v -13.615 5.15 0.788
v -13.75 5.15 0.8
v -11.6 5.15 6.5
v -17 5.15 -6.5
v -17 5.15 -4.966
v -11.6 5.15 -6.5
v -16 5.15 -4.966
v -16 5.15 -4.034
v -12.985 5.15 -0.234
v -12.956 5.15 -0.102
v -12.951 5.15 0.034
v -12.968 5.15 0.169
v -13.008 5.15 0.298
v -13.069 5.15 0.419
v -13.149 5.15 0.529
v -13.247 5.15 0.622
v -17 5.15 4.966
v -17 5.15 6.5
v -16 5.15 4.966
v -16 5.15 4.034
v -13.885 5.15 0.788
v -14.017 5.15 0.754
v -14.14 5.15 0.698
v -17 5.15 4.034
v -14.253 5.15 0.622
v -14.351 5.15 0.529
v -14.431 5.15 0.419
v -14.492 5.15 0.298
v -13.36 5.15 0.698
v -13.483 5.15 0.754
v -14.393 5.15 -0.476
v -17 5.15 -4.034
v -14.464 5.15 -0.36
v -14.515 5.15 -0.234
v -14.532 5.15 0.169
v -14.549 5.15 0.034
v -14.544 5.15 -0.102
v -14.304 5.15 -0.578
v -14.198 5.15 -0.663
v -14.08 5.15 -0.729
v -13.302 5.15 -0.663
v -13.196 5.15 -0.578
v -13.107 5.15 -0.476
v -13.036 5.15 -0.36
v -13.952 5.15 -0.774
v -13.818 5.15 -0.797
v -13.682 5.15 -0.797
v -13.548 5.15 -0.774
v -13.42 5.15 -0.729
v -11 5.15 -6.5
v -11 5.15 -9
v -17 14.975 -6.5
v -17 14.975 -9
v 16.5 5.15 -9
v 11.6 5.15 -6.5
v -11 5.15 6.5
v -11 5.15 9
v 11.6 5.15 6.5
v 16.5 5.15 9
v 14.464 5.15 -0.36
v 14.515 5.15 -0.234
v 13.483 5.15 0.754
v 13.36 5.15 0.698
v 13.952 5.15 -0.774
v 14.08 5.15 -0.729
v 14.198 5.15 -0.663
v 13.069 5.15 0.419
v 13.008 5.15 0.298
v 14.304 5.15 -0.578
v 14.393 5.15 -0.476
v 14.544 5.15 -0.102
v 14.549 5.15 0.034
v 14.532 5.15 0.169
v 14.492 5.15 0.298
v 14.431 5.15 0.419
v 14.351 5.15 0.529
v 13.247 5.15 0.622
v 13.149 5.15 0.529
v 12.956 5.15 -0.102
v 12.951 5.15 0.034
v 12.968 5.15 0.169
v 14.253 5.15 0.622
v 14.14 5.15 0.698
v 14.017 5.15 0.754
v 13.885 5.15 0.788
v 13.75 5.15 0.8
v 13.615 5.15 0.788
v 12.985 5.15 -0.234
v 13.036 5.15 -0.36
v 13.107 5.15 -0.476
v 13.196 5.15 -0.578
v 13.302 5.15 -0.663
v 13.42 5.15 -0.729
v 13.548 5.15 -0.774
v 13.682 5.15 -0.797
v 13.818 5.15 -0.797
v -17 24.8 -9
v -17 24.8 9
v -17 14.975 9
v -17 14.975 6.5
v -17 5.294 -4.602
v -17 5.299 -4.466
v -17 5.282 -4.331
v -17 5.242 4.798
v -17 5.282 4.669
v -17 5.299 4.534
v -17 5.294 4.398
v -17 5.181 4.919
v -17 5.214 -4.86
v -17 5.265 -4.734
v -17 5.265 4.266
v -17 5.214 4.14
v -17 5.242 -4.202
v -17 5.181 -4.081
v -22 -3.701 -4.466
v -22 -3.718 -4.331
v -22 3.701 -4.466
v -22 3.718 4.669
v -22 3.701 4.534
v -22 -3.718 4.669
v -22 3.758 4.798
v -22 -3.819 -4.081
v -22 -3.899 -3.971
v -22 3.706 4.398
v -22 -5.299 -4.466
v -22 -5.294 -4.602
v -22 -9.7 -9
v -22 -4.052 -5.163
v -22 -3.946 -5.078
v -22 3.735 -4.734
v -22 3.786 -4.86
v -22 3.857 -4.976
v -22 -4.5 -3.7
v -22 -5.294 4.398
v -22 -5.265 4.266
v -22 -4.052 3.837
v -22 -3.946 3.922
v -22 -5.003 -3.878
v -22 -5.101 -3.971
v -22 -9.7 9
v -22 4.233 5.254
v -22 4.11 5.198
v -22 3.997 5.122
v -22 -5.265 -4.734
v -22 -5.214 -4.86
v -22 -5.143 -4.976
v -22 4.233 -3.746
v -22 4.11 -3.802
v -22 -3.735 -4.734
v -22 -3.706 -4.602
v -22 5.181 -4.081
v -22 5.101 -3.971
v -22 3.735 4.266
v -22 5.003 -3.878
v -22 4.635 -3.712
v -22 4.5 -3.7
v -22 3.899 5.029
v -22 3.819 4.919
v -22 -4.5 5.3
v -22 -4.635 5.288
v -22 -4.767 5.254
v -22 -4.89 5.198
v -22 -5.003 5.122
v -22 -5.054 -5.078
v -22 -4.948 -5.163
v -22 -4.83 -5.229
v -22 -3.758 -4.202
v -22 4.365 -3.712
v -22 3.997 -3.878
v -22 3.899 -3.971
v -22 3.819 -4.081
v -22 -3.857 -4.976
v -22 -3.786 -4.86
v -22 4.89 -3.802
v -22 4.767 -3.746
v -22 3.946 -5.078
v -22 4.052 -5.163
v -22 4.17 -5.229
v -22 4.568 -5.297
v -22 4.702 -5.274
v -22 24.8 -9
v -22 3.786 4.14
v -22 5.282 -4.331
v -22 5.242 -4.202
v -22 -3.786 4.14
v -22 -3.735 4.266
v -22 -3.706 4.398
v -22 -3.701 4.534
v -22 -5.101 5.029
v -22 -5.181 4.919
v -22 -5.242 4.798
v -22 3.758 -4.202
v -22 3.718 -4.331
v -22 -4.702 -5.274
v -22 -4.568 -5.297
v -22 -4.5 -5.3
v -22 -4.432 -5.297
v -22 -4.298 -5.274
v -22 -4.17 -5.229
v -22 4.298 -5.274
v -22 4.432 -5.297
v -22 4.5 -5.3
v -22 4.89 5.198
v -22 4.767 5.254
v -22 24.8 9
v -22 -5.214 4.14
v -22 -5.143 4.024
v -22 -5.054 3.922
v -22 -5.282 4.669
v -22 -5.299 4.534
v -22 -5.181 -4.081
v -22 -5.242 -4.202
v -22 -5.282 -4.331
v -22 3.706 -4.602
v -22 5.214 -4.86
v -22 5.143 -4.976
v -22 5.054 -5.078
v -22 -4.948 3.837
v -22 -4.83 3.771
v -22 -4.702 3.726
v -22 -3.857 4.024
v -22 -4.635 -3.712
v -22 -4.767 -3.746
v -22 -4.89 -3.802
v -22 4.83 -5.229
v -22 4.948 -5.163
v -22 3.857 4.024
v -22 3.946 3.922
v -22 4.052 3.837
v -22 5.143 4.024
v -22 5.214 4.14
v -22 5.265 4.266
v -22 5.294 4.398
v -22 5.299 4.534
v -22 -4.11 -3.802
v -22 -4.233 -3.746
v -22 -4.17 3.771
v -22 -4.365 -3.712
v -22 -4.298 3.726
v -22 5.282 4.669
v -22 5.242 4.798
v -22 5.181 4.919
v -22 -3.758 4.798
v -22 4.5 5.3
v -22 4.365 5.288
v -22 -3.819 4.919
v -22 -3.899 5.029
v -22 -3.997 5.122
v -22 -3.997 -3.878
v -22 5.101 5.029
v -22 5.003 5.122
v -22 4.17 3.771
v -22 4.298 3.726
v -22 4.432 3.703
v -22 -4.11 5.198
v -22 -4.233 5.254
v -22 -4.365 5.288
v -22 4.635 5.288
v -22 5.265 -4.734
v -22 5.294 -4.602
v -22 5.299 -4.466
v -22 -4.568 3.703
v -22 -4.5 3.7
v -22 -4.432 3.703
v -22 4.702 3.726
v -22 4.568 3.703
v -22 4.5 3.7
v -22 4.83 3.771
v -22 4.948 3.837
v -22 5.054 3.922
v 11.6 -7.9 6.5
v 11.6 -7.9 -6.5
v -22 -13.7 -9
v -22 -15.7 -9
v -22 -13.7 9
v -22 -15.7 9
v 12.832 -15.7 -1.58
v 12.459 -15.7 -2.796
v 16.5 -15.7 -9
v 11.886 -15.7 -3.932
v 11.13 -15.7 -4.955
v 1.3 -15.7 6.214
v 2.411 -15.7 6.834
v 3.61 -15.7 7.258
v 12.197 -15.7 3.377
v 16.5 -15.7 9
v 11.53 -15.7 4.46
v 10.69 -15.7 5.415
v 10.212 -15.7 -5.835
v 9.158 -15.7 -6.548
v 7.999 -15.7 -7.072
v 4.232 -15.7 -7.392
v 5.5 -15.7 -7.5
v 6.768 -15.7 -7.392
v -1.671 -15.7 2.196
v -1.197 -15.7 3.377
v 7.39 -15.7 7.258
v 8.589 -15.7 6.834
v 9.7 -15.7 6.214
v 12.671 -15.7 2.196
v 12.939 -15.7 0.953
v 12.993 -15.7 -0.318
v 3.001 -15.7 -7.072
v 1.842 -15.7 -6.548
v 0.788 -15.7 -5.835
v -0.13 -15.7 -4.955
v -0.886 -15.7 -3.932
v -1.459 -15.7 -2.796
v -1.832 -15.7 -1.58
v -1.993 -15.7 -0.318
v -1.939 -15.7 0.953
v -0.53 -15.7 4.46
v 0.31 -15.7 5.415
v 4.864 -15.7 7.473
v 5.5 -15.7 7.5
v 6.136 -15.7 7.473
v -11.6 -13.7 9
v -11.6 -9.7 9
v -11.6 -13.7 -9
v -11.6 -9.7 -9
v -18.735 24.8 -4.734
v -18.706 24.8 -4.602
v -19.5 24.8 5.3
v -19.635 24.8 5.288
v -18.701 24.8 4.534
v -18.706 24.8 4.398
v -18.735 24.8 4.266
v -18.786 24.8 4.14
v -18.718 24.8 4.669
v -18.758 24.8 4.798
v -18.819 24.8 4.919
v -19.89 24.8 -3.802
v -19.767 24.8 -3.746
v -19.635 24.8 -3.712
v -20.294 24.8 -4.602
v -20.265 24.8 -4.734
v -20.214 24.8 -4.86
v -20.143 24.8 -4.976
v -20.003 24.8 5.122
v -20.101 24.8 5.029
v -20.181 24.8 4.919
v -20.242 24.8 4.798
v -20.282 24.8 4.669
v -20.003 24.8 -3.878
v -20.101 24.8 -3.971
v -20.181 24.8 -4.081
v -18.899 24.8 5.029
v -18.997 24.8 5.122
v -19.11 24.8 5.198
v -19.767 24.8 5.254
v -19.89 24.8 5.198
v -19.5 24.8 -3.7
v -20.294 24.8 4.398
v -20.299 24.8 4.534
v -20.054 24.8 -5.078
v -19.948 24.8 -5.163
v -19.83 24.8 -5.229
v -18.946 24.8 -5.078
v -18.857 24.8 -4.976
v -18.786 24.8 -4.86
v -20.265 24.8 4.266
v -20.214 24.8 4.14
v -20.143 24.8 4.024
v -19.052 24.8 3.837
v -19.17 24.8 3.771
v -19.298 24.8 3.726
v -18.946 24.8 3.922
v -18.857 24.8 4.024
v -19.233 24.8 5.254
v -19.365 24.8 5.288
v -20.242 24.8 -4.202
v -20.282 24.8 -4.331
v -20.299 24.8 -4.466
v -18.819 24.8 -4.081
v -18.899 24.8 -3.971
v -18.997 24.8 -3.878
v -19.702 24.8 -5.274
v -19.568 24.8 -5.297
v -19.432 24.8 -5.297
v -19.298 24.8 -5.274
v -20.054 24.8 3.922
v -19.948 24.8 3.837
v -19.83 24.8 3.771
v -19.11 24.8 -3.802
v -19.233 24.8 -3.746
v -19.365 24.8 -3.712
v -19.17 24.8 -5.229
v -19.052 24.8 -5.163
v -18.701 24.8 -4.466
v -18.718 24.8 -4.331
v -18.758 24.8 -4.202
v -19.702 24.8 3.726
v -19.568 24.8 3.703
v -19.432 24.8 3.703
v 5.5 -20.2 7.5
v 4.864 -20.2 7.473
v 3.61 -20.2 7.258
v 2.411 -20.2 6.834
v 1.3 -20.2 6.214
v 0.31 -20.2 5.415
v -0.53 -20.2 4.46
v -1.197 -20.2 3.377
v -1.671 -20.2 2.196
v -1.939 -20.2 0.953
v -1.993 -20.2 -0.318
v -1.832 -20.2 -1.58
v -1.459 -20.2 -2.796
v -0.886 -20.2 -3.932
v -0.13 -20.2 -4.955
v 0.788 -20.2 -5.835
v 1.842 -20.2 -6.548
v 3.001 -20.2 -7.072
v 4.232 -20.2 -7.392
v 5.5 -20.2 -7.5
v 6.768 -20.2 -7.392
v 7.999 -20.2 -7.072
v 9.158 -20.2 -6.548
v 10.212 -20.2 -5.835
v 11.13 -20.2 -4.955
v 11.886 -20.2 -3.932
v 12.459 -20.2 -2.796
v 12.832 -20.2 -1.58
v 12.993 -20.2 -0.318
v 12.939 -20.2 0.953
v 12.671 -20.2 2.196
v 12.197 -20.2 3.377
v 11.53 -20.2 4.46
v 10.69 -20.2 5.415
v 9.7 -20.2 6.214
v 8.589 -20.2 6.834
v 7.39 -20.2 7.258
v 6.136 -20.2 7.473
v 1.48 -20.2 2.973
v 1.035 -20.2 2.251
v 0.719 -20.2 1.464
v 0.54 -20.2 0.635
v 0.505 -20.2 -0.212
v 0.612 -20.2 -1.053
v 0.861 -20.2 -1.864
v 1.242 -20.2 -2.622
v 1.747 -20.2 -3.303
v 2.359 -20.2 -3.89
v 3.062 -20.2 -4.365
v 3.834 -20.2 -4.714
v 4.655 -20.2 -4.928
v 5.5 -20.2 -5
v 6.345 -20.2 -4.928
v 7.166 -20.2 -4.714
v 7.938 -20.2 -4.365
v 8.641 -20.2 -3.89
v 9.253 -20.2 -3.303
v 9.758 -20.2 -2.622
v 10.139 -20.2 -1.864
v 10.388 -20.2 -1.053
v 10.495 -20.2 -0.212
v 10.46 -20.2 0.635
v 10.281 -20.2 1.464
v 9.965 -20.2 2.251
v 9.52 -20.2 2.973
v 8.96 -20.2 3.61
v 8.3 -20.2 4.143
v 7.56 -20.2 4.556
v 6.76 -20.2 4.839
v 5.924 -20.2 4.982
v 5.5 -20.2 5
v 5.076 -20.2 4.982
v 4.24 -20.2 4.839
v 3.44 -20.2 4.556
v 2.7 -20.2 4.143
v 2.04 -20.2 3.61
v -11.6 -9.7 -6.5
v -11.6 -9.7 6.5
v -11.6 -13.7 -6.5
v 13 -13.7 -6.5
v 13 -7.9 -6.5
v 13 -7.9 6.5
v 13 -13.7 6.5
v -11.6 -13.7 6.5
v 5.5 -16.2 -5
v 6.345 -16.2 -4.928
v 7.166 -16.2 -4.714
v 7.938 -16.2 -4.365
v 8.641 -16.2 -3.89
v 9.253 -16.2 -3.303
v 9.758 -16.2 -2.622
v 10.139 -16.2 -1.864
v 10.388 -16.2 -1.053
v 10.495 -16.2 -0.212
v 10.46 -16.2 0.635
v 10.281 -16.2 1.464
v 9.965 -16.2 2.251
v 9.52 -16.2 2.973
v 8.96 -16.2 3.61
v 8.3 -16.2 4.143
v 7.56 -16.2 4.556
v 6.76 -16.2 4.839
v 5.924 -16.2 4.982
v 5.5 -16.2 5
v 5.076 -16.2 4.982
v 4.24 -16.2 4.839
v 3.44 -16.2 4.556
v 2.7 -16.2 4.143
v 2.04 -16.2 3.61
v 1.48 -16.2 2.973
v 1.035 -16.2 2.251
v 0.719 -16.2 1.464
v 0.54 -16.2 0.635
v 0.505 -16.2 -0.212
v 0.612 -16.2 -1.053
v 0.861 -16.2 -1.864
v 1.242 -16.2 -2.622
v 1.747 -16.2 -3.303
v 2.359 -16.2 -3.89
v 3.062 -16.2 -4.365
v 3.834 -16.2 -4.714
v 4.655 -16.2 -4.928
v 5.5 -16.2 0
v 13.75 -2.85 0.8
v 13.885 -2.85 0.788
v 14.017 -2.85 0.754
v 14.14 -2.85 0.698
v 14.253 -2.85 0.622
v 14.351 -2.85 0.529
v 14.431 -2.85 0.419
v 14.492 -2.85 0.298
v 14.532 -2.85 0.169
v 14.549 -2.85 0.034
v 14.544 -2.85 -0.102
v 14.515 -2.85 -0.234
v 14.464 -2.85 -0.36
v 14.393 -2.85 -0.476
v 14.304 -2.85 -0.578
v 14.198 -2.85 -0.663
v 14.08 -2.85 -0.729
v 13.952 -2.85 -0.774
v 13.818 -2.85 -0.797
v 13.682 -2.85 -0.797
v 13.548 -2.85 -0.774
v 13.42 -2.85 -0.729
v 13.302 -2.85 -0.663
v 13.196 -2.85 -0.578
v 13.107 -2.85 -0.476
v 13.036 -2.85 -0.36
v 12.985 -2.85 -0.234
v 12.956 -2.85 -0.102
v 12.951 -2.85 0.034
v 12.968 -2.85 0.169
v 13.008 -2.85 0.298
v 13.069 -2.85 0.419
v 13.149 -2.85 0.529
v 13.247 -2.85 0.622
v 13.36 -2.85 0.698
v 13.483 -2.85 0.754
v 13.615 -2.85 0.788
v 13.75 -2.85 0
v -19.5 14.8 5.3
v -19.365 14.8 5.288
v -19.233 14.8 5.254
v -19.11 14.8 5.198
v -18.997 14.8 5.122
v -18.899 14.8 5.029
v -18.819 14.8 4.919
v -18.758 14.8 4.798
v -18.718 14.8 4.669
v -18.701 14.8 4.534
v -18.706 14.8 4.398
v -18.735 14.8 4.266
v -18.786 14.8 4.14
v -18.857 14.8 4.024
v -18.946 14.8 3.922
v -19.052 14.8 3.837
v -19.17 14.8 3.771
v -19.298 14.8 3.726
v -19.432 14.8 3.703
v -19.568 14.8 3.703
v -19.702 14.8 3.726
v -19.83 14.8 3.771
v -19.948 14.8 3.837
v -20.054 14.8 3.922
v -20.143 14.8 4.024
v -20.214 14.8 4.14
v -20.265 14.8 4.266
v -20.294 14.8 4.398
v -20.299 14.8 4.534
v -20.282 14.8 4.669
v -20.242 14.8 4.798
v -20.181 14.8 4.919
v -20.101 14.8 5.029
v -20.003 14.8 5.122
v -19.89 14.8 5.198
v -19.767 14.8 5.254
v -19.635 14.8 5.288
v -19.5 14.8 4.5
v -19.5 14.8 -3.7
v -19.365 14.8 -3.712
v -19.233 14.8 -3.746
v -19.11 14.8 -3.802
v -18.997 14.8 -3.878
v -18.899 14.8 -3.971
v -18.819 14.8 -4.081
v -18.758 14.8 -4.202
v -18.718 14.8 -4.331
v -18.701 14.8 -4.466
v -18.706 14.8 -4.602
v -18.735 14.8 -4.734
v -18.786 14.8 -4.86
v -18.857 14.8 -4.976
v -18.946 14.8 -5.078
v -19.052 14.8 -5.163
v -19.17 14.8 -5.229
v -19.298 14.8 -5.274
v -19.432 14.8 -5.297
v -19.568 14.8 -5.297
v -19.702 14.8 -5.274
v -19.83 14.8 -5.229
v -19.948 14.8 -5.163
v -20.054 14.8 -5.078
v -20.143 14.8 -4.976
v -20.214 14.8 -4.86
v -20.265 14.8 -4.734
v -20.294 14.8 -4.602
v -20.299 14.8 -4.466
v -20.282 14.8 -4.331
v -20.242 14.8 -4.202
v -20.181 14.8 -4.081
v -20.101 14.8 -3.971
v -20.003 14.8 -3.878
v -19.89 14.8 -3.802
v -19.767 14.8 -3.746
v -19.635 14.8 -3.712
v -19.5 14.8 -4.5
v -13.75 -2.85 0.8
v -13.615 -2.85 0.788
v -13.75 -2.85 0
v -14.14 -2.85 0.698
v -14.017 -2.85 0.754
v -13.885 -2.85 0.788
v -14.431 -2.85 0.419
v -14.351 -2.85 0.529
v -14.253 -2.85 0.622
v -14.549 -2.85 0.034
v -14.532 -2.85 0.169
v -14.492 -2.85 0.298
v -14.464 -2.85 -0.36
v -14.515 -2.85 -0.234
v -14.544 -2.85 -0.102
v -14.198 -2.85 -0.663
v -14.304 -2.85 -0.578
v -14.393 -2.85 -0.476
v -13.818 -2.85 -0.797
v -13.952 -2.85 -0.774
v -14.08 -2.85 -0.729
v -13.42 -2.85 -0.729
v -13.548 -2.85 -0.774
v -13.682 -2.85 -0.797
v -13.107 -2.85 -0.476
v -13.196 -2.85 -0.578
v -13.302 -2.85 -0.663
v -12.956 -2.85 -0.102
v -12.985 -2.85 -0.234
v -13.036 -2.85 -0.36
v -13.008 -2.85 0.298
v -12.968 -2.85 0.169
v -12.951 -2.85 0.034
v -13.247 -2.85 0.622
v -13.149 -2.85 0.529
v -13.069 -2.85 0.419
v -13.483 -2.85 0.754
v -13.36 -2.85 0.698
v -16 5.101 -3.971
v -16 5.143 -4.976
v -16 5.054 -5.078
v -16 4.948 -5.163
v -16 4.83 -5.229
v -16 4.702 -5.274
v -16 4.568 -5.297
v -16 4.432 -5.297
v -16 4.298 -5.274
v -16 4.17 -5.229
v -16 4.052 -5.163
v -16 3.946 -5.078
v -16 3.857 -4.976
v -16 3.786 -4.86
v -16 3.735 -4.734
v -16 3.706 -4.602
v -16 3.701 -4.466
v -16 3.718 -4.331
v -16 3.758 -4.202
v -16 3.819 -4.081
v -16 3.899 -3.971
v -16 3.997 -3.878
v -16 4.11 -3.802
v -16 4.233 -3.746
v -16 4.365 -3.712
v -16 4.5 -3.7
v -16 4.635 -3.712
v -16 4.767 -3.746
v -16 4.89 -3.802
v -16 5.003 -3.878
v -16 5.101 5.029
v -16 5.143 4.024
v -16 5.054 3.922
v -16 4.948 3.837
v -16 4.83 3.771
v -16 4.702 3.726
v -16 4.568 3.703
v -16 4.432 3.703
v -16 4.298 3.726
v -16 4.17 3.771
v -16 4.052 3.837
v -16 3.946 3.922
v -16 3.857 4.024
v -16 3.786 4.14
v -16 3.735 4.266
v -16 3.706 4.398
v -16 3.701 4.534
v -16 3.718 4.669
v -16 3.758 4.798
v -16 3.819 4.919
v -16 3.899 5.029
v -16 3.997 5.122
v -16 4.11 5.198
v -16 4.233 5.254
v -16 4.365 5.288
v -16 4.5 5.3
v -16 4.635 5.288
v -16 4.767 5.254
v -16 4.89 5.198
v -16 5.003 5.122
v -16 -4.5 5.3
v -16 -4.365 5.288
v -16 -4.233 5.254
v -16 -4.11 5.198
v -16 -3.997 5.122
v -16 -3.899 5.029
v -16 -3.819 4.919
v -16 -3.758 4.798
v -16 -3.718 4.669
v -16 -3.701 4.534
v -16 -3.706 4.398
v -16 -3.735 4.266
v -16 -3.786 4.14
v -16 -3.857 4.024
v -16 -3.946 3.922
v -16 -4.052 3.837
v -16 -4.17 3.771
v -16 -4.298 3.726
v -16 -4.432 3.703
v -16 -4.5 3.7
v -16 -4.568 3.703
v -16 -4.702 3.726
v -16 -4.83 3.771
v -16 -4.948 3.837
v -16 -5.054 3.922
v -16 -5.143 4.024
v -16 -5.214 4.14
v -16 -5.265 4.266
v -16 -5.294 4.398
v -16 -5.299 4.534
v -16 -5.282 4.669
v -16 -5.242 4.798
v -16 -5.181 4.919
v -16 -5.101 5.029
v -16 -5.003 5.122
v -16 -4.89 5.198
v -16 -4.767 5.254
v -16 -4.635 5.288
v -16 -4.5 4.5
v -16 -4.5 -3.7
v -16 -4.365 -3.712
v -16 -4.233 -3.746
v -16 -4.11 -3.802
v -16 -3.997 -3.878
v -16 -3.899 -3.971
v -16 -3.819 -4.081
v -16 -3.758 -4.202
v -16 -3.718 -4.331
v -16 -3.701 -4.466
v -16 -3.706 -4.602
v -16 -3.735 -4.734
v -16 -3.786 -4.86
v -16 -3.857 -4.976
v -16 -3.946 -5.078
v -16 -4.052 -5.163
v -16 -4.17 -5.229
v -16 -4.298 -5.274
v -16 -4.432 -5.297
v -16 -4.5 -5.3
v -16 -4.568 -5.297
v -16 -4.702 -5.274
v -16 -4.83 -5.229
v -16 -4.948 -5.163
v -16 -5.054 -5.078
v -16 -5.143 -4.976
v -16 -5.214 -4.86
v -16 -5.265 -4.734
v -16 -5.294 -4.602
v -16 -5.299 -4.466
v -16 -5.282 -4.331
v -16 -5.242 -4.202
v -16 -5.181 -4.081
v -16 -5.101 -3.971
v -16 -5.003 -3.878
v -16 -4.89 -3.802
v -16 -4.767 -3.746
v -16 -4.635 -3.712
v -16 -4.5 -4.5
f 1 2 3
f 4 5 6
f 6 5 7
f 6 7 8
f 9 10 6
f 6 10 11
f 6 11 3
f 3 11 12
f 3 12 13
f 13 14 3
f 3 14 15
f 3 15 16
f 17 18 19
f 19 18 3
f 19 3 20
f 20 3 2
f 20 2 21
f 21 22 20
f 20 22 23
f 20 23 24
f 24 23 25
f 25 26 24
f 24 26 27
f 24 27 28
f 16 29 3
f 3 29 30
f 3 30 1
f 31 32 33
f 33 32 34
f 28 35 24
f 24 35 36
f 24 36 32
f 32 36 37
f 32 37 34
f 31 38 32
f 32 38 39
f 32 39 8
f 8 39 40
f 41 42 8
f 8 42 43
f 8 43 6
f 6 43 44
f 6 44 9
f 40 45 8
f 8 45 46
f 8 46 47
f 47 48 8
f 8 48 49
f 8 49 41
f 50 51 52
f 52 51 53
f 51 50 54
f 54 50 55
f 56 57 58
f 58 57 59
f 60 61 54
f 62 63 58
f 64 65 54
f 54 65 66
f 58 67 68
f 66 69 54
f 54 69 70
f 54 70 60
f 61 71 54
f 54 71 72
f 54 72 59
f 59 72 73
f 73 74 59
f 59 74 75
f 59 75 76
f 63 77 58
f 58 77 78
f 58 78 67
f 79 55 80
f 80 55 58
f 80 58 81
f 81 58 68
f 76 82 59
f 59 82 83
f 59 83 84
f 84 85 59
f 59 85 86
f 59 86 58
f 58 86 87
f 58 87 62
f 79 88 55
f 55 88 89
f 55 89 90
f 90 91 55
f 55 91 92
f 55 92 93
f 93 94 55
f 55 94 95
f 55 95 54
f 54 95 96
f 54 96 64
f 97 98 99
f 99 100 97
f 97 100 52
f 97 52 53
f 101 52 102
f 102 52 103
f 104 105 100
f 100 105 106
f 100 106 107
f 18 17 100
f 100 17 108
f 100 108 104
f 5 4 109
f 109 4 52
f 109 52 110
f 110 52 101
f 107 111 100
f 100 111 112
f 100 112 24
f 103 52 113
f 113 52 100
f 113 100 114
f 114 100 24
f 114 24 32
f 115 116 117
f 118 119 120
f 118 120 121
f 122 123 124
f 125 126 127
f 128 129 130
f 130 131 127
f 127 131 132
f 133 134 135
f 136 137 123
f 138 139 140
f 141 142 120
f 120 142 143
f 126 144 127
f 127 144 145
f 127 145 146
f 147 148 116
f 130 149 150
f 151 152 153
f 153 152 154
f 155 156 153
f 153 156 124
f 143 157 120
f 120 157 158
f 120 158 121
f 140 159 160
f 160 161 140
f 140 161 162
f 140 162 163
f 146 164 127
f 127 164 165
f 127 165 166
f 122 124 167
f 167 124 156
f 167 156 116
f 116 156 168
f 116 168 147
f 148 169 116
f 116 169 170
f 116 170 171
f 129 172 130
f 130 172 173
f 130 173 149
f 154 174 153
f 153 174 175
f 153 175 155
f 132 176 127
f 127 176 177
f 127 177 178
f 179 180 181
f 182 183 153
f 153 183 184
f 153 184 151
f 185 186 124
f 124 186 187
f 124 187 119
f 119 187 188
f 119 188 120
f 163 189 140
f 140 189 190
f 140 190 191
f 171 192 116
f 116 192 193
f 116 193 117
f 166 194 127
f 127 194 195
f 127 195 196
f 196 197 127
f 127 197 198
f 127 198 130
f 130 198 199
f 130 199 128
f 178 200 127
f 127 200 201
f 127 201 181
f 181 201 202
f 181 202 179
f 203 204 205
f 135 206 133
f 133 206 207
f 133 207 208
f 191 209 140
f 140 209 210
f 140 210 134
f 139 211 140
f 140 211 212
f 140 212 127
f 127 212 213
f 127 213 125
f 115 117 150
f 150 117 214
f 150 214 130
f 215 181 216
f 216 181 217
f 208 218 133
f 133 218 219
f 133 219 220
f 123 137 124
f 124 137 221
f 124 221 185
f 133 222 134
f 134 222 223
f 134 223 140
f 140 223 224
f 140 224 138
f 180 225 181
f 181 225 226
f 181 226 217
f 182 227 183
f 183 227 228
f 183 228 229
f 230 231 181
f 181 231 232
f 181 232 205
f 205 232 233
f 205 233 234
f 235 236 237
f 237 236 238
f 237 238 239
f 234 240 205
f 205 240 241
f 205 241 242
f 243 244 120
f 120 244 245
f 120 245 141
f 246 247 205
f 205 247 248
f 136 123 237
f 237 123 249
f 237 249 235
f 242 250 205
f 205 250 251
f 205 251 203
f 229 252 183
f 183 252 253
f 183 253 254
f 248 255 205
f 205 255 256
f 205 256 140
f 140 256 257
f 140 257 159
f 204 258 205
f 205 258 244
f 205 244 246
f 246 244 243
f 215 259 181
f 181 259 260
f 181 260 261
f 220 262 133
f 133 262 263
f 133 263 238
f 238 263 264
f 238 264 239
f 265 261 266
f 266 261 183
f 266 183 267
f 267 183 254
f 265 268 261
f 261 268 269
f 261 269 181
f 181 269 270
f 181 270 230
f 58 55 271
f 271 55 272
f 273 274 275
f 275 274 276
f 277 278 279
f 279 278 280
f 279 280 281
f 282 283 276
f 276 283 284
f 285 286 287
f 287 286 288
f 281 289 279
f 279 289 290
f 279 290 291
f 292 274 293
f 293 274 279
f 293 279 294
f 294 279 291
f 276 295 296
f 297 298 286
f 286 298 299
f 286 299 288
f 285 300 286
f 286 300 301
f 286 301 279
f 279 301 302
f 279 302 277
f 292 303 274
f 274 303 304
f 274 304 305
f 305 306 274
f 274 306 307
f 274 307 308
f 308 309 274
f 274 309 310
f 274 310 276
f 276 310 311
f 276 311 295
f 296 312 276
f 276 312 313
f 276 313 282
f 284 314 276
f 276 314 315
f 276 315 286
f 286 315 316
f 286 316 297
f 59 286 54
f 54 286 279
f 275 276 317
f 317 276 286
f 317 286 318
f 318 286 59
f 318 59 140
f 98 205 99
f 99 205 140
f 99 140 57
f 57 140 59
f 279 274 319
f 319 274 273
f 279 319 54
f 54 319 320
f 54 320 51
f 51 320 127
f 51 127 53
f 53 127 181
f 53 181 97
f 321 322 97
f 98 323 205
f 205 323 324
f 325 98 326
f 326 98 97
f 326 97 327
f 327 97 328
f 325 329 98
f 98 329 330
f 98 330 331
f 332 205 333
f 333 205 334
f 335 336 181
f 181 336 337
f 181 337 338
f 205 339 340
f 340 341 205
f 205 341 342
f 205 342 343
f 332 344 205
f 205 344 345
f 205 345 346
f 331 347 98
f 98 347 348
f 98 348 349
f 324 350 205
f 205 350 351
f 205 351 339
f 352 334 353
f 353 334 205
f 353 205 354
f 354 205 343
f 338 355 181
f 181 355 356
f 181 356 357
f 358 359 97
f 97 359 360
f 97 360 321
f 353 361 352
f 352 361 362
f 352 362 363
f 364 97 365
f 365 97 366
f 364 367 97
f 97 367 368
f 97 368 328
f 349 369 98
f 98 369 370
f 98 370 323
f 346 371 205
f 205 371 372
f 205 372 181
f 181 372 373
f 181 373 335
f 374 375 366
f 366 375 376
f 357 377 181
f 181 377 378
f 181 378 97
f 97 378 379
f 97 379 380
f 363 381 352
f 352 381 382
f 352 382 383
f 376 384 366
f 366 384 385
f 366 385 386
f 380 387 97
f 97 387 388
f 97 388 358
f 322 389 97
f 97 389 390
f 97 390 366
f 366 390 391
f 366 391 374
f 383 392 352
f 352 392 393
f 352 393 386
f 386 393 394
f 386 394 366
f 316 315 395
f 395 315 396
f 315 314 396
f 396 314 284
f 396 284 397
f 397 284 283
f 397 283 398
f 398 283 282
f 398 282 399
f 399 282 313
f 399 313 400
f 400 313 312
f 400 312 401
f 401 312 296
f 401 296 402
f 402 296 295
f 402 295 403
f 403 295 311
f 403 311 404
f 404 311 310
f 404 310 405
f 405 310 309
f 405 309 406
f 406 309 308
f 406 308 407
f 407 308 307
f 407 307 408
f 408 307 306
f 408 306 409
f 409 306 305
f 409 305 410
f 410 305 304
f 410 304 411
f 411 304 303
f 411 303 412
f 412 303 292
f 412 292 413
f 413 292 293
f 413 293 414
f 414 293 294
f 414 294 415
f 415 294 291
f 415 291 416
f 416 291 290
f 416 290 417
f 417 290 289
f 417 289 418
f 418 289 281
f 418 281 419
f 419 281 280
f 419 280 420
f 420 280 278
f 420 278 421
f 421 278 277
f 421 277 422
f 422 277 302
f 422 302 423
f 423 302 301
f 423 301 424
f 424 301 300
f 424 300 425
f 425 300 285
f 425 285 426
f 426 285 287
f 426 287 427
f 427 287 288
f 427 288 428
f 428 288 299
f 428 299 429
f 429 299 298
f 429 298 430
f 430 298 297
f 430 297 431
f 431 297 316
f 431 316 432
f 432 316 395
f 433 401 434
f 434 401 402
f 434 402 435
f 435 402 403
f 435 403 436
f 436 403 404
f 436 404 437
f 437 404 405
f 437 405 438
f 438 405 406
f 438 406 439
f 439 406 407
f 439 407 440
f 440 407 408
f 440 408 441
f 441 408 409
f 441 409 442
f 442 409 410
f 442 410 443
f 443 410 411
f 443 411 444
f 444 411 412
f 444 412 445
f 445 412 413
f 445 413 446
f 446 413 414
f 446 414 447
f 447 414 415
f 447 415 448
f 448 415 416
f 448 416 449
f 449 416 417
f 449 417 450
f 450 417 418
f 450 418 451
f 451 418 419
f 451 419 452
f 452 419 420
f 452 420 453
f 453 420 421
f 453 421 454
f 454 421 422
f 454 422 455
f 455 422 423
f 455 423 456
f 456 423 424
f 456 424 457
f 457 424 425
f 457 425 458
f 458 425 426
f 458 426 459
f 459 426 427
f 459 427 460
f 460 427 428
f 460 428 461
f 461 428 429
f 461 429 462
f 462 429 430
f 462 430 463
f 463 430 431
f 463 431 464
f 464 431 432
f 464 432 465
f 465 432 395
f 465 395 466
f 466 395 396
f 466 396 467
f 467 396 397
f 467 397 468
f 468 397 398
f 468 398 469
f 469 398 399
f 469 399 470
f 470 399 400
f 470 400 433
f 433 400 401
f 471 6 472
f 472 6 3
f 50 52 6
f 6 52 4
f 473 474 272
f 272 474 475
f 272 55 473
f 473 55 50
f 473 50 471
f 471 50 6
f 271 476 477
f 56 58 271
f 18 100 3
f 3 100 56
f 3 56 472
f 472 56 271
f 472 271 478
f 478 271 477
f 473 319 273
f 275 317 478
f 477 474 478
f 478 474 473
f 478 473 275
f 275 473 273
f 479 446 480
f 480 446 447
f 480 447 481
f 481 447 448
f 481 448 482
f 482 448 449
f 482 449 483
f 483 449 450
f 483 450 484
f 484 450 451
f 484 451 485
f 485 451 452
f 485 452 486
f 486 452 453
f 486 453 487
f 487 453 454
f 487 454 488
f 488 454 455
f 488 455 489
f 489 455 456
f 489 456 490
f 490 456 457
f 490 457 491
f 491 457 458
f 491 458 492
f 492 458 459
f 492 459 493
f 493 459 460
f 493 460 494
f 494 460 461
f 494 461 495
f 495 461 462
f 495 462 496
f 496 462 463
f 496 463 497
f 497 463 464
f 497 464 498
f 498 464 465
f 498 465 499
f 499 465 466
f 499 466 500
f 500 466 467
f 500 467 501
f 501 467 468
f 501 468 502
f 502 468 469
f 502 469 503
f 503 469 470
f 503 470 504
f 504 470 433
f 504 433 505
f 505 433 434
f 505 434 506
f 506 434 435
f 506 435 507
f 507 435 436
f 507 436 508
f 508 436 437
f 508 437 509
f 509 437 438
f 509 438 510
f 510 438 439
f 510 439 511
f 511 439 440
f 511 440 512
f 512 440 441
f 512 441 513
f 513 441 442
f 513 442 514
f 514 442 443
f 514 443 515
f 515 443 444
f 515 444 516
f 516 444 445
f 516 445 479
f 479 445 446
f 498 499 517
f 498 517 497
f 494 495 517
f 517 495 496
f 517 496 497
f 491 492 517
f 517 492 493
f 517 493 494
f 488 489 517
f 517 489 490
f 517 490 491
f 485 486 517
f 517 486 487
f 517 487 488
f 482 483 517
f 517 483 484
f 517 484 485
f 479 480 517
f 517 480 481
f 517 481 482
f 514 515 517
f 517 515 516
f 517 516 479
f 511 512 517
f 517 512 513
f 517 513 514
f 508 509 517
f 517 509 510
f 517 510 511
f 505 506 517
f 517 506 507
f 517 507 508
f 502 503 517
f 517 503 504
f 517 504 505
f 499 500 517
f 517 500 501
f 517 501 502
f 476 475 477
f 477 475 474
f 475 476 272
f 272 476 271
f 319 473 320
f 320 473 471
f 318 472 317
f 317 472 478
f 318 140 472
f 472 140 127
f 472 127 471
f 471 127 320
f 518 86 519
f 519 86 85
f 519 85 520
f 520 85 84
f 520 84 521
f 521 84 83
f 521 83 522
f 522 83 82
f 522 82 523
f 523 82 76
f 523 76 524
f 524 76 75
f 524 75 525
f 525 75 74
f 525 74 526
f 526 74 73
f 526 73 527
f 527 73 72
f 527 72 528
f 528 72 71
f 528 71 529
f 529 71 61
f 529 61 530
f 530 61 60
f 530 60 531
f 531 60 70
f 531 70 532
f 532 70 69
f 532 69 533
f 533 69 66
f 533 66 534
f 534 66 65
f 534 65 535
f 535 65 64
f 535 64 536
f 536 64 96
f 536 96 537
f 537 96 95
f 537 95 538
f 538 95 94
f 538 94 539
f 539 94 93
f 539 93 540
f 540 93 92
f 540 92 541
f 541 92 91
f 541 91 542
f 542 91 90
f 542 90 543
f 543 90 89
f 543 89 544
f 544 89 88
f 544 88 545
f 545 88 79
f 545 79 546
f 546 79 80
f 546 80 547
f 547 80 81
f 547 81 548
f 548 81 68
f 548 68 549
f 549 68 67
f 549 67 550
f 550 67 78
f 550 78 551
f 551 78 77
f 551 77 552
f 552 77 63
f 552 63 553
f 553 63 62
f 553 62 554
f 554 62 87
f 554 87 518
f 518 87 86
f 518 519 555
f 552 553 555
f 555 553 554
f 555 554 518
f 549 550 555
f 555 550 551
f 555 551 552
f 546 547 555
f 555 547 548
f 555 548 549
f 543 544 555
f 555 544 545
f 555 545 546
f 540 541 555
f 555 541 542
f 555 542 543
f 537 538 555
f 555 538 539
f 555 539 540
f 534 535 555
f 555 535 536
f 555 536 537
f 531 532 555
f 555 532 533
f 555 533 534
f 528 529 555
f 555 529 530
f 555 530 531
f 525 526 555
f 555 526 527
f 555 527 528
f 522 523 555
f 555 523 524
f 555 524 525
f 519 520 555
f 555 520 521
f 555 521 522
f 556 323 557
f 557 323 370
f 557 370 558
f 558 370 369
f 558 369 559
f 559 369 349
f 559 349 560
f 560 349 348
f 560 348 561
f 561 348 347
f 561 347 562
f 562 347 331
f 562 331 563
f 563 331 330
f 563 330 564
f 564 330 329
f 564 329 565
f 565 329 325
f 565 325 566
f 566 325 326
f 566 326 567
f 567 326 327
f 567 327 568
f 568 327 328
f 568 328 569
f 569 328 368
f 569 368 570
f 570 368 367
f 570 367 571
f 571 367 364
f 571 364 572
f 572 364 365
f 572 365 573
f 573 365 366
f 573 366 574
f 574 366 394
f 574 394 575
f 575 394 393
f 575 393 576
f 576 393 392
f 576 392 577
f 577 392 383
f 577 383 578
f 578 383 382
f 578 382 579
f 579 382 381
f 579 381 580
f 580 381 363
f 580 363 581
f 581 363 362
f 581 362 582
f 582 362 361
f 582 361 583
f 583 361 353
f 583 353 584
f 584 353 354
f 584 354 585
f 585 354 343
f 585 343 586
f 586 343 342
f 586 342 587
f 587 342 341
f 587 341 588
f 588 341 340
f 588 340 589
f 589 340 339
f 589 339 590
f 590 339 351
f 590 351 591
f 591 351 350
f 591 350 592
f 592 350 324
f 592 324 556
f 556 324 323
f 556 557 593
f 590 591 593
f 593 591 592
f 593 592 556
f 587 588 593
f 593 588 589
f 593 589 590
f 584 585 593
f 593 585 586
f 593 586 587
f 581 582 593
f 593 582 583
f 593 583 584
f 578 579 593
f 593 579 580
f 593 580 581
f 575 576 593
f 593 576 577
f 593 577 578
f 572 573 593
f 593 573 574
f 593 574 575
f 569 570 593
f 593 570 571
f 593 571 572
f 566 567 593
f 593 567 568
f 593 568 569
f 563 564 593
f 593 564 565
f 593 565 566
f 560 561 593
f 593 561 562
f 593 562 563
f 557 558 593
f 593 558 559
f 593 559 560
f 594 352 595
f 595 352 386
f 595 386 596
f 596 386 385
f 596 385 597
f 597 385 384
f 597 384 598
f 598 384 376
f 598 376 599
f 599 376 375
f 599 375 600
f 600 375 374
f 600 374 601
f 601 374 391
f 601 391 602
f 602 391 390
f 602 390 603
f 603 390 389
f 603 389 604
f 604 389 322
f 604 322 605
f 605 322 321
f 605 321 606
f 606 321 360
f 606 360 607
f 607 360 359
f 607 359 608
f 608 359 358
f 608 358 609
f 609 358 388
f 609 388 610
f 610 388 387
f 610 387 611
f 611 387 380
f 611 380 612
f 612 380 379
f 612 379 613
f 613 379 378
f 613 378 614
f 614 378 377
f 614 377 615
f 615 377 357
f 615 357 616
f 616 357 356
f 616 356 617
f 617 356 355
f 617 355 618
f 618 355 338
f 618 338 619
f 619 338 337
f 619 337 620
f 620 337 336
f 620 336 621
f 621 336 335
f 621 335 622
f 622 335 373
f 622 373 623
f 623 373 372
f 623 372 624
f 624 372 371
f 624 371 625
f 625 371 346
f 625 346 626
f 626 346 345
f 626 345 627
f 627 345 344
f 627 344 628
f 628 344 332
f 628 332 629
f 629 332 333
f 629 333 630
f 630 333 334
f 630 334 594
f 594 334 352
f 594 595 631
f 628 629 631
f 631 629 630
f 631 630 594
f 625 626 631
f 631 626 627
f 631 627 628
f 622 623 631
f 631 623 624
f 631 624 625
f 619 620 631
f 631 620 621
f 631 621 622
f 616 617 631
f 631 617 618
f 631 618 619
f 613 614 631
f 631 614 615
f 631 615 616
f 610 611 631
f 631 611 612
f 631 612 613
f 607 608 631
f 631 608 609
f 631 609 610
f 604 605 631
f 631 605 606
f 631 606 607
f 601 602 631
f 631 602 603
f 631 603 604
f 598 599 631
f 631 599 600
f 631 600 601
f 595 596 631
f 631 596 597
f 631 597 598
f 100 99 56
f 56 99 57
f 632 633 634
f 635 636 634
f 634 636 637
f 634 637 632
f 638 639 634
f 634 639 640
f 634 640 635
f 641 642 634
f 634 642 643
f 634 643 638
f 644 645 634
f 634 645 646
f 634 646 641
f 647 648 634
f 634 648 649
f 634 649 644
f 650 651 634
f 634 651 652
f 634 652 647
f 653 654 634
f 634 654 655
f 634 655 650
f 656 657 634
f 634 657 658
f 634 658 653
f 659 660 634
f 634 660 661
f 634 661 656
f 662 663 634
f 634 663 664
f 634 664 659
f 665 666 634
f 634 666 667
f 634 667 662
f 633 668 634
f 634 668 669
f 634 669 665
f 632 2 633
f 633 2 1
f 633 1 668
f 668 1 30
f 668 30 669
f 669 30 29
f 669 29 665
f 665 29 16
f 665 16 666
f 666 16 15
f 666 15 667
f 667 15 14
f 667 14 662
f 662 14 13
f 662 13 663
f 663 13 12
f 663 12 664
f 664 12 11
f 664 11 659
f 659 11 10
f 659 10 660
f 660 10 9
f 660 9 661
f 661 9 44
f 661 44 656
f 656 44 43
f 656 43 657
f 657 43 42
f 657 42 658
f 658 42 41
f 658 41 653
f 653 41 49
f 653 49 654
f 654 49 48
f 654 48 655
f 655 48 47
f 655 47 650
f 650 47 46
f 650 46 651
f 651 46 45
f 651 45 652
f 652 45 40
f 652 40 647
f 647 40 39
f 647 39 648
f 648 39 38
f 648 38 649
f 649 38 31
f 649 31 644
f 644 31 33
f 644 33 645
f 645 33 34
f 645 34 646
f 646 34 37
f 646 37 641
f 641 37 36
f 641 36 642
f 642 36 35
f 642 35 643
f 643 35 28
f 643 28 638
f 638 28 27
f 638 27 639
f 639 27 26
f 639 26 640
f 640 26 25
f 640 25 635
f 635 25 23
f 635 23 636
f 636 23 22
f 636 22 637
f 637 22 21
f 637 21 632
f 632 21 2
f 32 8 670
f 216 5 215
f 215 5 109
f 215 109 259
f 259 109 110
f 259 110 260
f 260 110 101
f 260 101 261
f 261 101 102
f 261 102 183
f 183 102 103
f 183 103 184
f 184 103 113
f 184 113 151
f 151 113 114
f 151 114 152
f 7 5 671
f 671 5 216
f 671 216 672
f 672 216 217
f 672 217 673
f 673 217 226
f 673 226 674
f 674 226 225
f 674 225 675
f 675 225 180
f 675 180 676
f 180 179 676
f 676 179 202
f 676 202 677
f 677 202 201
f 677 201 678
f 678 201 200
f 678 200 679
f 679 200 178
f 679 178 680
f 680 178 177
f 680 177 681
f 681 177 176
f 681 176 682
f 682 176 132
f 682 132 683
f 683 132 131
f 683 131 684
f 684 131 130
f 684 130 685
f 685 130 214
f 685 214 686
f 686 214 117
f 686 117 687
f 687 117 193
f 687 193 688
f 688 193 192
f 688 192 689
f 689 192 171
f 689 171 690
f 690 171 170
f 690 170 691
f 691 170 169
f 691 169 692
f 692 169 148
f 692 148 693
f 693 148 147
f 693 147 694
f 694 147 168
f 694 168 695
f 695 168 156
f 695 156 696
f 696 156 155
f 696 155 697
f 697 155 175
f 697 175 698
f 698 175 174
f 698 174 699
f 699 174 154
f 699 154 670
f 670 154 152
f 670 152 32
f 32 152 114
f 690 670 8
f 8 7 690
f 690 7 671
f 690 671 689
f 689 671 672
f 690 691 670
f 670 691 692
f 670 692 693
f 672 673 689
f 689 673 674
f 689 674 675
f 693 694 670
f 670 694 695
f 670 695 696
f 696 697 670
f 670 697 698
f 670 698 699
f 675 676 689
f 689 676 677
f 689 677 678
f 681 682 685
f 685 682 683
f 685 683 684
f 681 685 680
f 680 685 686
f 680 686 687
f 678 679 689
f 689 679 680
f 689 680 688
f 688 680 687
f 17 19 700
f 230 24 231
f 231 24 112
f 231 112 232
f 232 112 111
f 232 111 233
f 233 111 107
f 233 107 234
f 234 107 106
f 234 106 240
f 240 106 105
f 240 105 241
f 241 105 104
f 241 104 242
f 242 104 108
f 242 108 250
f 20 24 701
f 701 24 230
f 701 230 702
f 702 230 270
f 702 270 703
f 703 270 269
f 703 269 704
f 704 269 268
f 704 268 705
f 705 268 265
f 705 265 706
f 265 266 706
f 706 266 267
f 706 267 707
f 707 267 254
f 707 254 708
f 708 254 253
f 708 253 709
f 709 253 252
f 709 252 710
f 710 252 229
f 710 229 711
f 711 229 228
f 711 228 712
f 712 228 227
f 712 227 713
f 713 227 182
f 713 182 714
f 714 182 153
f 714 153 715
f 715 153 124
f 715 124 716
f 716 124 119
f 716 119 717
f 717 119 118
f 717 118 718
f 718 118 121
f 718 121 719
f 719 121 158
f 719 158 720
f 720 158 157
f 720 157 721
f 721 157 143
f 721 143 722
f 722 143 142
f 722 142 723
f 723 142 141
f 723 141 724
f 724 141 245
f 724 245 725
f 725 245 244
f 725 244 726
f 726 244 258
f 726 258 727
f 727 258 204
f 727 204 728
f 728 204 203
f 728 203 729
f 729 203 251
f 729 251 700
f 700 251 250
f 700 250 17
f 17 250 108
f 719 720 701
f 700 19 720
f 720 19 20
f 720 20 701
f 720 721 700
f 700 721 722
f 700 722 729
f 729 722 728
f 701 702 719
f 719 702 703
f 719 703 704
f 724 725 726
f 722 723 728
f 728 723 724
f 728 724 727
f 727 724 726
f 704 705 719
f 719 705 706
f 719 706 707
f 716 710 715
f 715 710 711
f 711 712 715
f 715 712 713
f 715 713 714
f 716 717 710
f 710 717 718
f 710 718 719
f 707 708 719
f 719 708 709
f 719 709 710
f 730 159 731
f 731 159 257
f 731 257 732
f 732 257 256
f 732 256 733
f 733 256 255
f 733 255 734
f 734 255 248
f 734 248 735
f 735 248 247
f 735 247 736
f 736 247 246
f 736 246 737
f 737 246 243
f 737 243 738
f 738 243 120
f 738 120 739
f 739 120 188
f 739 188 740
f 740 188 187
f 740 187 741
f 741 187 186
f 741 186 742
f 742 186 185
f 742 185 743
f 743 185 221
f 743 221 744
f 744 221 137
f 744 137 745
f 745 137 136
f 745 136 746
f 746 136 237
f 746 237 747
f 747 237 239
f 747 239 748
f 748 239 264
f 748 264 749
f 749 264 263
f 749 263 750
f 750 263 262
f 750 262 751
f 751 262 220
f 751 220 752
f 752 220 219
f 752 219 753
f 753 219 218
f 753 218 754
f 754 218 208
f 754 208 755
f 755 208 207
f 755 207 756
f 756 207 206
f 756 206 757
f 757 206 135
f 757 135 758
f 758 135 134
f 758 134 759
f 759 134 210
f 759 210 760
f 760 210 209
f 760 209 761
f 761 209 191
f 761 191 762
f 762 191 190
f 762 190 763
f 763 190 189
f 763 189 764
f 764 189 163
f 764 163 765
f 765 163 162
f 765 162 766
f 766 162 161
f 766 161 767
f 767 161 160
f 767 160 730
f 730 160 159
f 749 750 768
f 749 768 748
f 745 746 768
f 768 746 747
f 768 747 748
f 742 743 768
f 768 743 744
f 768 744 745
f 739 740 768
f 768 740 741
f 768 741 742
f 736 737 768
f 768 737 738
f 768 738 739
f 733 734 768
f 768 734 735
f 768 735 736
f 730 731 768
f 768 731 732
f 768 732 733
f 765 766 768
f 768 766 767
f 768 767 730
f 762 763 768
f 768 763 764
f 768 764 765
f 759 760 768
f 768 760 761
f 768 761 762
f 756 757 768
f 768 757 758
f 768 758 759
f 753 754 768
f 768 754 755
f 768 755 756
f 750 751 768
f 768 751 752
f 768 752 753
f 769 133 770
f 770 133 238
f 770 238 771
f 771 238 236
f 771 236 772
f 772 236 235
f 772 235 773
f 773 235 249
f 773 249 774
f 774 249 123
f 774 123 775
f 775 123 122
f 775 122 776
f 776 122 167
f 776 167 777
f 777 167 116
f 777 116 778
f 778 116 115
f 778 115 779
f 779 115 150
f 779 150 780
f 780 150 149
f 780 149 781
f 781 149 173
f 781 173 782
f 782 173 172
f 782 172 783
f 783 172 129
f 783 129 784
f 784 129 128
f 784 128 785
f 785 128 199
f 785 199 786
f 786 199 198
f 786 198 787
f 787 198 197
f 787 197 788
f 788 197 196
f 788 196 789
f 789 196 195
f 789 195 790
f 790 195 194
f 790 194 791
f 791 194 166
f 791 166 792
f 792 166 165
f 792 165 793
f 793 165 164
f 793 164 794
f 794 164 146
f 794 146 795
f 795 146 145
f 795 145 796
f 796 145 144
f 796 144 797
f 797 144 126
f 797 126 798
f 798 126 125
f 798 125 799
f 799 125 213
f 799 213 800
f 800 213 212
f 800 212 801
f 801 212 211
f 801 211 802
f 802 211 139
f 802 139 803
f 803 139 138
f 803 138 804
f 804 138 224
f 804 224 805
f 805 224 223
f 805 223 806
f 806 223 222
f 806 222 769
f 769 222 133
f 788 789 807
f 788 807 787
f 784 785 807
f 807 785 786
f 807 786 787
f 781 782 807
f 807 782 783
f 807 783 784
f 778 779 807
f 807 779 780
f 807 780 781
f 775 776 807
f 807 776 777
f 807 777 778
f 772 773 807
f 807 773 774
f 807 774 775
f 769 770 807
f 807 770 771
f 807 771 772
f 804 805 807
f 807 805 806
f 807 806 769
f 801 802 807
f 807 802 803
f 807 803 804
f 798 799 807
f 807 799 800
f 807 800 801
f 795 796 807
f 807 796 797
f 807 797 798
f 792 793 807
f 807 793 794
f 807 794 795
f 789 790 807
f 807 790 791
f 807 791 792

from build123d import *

# Parameters (mm, degrees)
SKETCH1_W               = 38.5
SKETCH1_H               = 20.85
BOSS_EXTRUDE1_DEPTH     = 9
SKETCH2_W               = 5
SKETCH2_H               = 19.65
BOSS_EXTRUDE2_DEPTH     = 9
SKETCH3_R               = 7.5
BOSS_EXTRUDE3_DEPTH     = 4.5
SKETCH4_W               = 23.2
SKETCH4_H               = 13
CUT_EXTRUDE1_DEPTH      = 18.85
SKETCH5_R               = 5
CUT_EXTRUDE3_DEPTH      = 4
SKETCH6_W               = 1.4
SKETCH6_H               = 13
CUT_EXTRUDE5_DEPTH      = 5.8
CUT_EXTRUDE6_DEPTH      = 35.351710292
CUT_EXTRUDE6_DEPTH_BACK = 35.351710292
SKETCH7_W               = 10.4
SKETCH7_H               = 4
SKETCH8_R               = 0.8
CUT_EXTRUDE7_DEPTH      = 8
SKETCH9_R               = 0.8
CUT_EXTRUDE8_DEPTH      = 8
SKETCH10_R              = 0.8
CUT_EXTRUDE9_DEPTH      = 10
SKETCH11_R              = 0.8
CUT_EXTRUDE10_DEPTH     = 10
BOSS_EXTRUDE4_DEPTH     = 9
SKETCH13_W              = 6
SKETCH13_H              = 13
CUT_EXTRUDE11_DEPTH     = 9.85
SKETCH14_R              = 0.8
CUT_EXTRUDE13_DEPTH     = 6


with BuildPart() as part:
    # Sketch1 → Boss-Extrude1 (new, symmetric)
    with BuildSketch(Plane.XY):
        with Locations((-2.75, -5.275)):
            Rectangle(SKETCH1_W, SKETCH1_H)
    extrude(amount=BOSS_EXTRUDE1_DEPTH, both=True)

    # Sketch2 → Boss-Extrude2 (add, symmetric)
    with BuildSketch(Plane.XY):
        with Locations((-19.5, 14.975)):
            Rectangle(SKETCH2_W, SKETCH2_H)
    extrude(amount=BOSS_EXTRUDE2_DEPTH, both=True)

    # Sketch3 → Boss-Extrude3 (add)
    with BuildSketch(Plane(origin=(0, -20.2, 0), x_dir=(1, 0, 0), z_dir=(0, 1, 0))):
        with Locations(Location((5.5, 0, 0), (0, 0, 270))):
            Circle(SKETCH3_R)
    extrude(amount=BOSS_EXTRUDE3_DEPTH)

    # Sketch4 → Cut-Extrude1 (cut)
    with BuildSketch(Plane(origin=(0, 5.15, 0), x_dir=(1, 0, 0), z_dir=(0, 1, 0))):
        Rectangle(SKETCH4_W, SKETCH4_H)
    extrude(amount=-CUT_EXTRUDE1_DEPTH, mode=Mode.SUBTRACT)

    # Sketch5 → Cut-Extrude3 (cut)
    with BuildSketch(Plane(origin=(0, -20.2, 0), x_dir=(1, 0, 0), z_dir=(0, 1, 0))):
        with Locations(Location((5.5, 0, 0), (0, 0, 270))):
            Circle(SKETCH5_R)
    extrude(amount=CUT_EXTRUDE3_DEPTH, mode=Mode.SUBTRACT)

    # Sketch6 → Cut-Extrude5 (cut)
    with BuildSketch(Plane(origin=(0, -13.7, 0), x_dir=(1, 0, 0), z_dir=(0, 1, 0))):
        with Locations((12.3, 0)):
            Rectangle(SKETCH6_W, SKETCH6_H)
    extrude(amount=CUT_EXTRUDE5_DEPTH, mode=Mode.SUBTRACT)

    # Sketch7 → Cut-Extrude6 (cut, two sides: drawn at the far end of the back side and taken through both)
    with BuildSketch(Plane.XY.offset(-CUT_EXTRUDE6_DEPTH_BACK)):
        with Locations((-16.8, -11.7)):
            Rectangle(SKETCH7_W, SKETCH7_H)
    extrude(amount=CUT_EXTRUDE6_DEPTH + CUT_EXTRUDE6_DEPTH_BACK, mode=Mode.SUBTRACT)

    # Sketch8 → Cut-Extrude7 (cut)
    with BuildSketch(Plane(origin=(0, 5.15, 0), x_dir=(1, 0, 0), z_dir=(0, 1, 0))):
        with Locations(Location((-13.75, 0, 0), (0, 0, 270))):
            Circle(SKETCH8_R)
    extrude(amount=-CUT_EXTRUDE7_DEPTH, mode=Mode.SUBTRACT)

    # Sketch9 → Cut-Extrude8 (cut)
    with BuildSketch(Plane(origin=(0, 5.15, 0), x_dir=(1, 0, 0), z_dir=(0, 1, 0))):
        with Locations(Location((13.75, 0, 0), (0, 0, 270))):
            Circle(SKETCH9_R)
    extrude(amount=-CUT_EXTRUDE8_DEPTH, mode=Mode.SUBTRACT)

    # Sketch10 → Cut-Extrude9 (cut)
    with BuildSketch(Plane(origin=(0, 24.8, 0), x_dir=(1, 0, 0), z_dir=(0, 1, 0))):
        with Locations(Location((-19.5, -4.5, 0), (0, 0, 270))):
            Circle(SKETCH10_R)
    extrude(amount=-CUT_EXTRUDE9_DEPTH, mode=Mode.SUBTRACT)

    # Sketch11 → Cut-Extrude10 (cut)
    with BuildSketch(Plane(origin=(0, 24.8, 0), x_dir=(1, 0, 0), z_dir=(0, 1, 0))):
        with Locations(Location((-19.5, 4.5, 0), (0, 0, 270))):
            Circle(SKETCH11_R)
    extrude(amount=-CUT_EXTRUDE10_DEPTH, mode=Mode.SUBTRACT)

    # Sketch12 → Boss-Extrude4 (add, symmetric)
    with BuildSketch(Plane.XY):
        Polygon((-17, 5.15), (-11, 5.15), (-17, 14.975), align=None)
    extrude(amount=BOSS_EXTRUDE4_DEPTH, both=True)

    # Sketch13 → Cut-Extrude11 (cut)
    with BuildSketch(Plane(origin=(0, 15, 0), x_dir=(1, 0, 0), z_dir=(0, 1, 0))):
        with Locations((-14, 0)):
            Rectangle(SKETCH13_W, SKETCH13_H)
    extrude(amount=-CUT_EXTRUDE11_DEPTH, mode=Mode.SUBTRACT)

    # Sketch14 → Cut-Extrude13 (cut)
    with BuildSketch(Plane(origin=(-22, 0, 0), x_dir=(0, 0, -1), z_dir=(1, 0, 0))):
        with Locations((-4.5, -4.5)):
            Circle(SKETCH14_R)
        with Locations((4.5, -4.5)):
            Circle(SKETCH14_R)
        with Locations(Location((-4.5, 4.5, 0), (0, 0, 125.659087696))):
            Circle(SKETCH14_R)
        with Locations(Location((4.5, 4.5, 0), (0, 0, 125.659087696))):
            Circle(SKETCH14_R)
    extrude(amount=CUT_EXTRUDE13_DEPTH, mode=Mode.SUBTRACT)


solid = part.part
